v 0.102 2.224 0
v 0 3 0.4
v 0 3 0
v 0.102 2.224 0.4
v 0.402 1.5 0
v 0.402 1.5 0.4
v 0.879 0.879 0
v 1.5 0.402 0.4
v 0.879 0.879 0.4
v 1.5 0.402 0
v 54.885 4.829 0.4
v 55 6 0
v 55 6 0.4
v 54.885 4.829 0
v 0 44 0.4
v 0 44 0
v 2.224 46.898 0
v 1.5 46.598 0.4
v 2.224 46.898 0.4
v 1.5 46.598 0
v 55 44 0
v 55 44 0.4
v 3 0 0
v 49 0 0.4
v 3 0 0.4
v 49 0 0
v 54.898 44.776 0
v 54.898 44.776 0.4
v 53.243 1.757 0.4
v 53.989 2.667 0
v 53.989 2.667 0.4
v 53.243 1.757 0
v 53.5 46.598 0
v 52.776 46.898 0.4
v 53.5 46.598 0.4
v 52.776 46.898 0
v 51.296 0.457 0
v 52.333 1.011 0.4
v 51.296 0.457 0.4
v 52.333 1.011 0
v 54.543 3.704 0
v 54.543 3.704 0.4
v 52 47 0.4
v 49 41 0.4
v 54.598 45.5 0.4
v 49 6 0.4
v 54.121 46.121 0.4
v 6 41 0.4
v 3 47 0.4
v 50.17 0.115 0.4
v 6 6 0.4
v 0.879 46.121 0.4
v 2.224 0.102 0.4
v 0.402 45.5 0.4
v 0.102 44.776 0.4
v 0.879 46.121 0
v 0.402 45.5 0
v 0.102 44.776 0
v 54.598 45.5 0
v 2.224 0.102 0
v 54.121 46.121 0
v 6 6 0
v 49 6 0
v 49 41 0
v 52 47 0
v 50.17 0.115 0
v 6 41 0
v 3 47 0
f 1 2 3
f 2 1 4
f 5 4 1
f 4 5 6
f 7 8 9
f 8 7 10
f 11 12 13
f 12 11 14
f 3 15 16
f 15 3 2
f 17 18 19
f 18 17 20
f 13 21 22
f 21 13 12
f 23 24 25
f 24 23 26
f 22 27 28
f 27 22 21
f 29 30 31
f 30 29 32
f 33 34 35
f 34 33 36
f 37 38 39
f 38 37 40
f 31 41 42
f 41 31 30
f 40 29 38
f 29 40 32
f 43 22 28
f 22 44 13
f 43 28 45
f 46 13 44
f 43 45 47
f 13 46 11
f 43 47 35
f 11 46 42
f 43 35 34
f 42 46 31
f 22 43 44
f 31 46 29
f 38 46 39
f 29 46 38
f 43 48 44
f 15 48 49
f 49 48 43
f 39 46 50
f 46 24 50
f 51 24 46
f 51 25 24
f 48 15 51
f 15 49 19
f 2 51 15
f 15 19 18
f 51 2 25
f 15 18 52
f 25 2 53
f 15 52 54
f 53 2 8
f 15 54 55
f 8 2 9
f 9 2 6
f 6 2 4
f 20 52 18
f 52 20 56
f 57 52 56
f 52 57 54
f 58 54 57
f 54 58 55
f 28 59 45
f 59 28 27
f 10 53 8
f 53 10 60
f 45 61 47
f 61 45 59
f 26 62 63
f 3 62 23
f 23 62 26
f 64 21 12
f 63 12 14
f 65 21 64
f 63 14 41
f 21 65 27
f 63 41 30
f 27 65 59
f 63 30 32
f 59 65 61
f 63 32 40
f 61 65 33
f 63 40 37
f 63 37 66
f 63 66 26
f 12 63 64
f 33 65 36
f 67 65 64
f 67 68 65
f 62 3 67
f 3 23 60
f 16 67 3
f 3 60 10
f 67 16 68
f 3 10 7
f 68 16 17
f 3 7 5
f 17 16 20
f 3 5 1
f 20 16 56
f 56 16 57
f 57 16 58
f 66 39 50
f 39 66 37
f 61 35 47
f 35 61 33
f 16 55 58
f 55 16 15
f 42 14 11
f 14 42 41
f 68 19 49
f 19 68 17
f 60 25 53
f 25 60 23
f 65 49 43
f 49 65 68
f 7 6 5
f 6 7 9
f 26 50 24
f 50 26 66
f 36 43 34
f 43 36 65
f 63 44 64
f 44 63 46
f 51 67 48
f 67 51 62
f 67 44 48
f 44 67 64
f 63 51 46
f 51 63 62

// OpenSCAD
// =============================================================================
// Mon-Mon Gen 3 - Screen Bezel
// DMG Game Boy inspired design - separate piece for multi-color printing
// =============================================================================

// Include parameters (safe to include multiple times)
include <parameters.scad>

// -----------------------------------------------------------------------------
// DMG-Style Screen Bezel (raised frame with larger bottom-right corner radius)
// For printing: flat on build plate, screen opening facing up
// -----------------------------------------------------------------------------
module screen_bezel() {
    // Bezel outer dimensions
    bezel_outer_w = screen_window_width + bezel_margin * 2;
    bezel_outer_h = screen_window_height + bezel_margin * 2;
    bezel_inner_w = screen_window_width;
    bezel_inner_h = screen_window_height;

    // Corner radii - bottom-right is slightly larger like DMG
    corner_r = bezel_corner_radius;  // Normal corners (3mm)
    corner_r_br = 6;  // Bottom-right corner - slightly larger radius

    difference() {
        // Outer bezel shape
        hull() {
            // Top-left corner
            translate([corner_r, bezel_outer_h - corner_r, 0])
                cylinder(h=bezel_height, r=corner_r, $fn=24);
            // Top-right corner
            translate([bezel_outer_w - corner_r, bezel_outer_h - corner_r, 0])
                cylinder(h=bezel_height, r=corner_r, $fn=24);
            // Bottom-left corner
            translate([corner_r, corner_r, 0])
                cylinder(h=bezel_height, r=corner_r, $fn=24);
            // Bottom-right corner (slightly larger radius like DMG)
            translate([bezel_outer_w - corner_r_br, corner_r_br, 0])
                cylinder(h=bezel_height, r=corner_r_br, $fn=32);
        }

        // Inner cutout for screen (positioned with margin offset)
        translate([bezel_margin, bezel_margin, -0.1])
            cube([bezel_inner_w, bezel_inner_h, bezel_height + 0.2]);
    }
}

// -----------------------------------------------------------------------------
// Module for assembly positioning (used by mon-mon.scad)
// -----------------------------------------------------------------------------
module screen_bezel_positioned() {
    // Bezel dimensions for positioning
    bezel_outer_w = screen_window_width + bezel_margin * 2;
    bezel_outer_h = screen_window_height + bezel_margin * 2;

    translate([screen_center_x - bezel_outer_w/2,
               screen_center_y - screen_window_height/2 - bezel_margin,
               shell_depth_front - bezel_height])
        screen_bezel();
}

// Preview (renders when opening this file directly)
color([0.3, 0.3, 0.35]) screen_bezel();
